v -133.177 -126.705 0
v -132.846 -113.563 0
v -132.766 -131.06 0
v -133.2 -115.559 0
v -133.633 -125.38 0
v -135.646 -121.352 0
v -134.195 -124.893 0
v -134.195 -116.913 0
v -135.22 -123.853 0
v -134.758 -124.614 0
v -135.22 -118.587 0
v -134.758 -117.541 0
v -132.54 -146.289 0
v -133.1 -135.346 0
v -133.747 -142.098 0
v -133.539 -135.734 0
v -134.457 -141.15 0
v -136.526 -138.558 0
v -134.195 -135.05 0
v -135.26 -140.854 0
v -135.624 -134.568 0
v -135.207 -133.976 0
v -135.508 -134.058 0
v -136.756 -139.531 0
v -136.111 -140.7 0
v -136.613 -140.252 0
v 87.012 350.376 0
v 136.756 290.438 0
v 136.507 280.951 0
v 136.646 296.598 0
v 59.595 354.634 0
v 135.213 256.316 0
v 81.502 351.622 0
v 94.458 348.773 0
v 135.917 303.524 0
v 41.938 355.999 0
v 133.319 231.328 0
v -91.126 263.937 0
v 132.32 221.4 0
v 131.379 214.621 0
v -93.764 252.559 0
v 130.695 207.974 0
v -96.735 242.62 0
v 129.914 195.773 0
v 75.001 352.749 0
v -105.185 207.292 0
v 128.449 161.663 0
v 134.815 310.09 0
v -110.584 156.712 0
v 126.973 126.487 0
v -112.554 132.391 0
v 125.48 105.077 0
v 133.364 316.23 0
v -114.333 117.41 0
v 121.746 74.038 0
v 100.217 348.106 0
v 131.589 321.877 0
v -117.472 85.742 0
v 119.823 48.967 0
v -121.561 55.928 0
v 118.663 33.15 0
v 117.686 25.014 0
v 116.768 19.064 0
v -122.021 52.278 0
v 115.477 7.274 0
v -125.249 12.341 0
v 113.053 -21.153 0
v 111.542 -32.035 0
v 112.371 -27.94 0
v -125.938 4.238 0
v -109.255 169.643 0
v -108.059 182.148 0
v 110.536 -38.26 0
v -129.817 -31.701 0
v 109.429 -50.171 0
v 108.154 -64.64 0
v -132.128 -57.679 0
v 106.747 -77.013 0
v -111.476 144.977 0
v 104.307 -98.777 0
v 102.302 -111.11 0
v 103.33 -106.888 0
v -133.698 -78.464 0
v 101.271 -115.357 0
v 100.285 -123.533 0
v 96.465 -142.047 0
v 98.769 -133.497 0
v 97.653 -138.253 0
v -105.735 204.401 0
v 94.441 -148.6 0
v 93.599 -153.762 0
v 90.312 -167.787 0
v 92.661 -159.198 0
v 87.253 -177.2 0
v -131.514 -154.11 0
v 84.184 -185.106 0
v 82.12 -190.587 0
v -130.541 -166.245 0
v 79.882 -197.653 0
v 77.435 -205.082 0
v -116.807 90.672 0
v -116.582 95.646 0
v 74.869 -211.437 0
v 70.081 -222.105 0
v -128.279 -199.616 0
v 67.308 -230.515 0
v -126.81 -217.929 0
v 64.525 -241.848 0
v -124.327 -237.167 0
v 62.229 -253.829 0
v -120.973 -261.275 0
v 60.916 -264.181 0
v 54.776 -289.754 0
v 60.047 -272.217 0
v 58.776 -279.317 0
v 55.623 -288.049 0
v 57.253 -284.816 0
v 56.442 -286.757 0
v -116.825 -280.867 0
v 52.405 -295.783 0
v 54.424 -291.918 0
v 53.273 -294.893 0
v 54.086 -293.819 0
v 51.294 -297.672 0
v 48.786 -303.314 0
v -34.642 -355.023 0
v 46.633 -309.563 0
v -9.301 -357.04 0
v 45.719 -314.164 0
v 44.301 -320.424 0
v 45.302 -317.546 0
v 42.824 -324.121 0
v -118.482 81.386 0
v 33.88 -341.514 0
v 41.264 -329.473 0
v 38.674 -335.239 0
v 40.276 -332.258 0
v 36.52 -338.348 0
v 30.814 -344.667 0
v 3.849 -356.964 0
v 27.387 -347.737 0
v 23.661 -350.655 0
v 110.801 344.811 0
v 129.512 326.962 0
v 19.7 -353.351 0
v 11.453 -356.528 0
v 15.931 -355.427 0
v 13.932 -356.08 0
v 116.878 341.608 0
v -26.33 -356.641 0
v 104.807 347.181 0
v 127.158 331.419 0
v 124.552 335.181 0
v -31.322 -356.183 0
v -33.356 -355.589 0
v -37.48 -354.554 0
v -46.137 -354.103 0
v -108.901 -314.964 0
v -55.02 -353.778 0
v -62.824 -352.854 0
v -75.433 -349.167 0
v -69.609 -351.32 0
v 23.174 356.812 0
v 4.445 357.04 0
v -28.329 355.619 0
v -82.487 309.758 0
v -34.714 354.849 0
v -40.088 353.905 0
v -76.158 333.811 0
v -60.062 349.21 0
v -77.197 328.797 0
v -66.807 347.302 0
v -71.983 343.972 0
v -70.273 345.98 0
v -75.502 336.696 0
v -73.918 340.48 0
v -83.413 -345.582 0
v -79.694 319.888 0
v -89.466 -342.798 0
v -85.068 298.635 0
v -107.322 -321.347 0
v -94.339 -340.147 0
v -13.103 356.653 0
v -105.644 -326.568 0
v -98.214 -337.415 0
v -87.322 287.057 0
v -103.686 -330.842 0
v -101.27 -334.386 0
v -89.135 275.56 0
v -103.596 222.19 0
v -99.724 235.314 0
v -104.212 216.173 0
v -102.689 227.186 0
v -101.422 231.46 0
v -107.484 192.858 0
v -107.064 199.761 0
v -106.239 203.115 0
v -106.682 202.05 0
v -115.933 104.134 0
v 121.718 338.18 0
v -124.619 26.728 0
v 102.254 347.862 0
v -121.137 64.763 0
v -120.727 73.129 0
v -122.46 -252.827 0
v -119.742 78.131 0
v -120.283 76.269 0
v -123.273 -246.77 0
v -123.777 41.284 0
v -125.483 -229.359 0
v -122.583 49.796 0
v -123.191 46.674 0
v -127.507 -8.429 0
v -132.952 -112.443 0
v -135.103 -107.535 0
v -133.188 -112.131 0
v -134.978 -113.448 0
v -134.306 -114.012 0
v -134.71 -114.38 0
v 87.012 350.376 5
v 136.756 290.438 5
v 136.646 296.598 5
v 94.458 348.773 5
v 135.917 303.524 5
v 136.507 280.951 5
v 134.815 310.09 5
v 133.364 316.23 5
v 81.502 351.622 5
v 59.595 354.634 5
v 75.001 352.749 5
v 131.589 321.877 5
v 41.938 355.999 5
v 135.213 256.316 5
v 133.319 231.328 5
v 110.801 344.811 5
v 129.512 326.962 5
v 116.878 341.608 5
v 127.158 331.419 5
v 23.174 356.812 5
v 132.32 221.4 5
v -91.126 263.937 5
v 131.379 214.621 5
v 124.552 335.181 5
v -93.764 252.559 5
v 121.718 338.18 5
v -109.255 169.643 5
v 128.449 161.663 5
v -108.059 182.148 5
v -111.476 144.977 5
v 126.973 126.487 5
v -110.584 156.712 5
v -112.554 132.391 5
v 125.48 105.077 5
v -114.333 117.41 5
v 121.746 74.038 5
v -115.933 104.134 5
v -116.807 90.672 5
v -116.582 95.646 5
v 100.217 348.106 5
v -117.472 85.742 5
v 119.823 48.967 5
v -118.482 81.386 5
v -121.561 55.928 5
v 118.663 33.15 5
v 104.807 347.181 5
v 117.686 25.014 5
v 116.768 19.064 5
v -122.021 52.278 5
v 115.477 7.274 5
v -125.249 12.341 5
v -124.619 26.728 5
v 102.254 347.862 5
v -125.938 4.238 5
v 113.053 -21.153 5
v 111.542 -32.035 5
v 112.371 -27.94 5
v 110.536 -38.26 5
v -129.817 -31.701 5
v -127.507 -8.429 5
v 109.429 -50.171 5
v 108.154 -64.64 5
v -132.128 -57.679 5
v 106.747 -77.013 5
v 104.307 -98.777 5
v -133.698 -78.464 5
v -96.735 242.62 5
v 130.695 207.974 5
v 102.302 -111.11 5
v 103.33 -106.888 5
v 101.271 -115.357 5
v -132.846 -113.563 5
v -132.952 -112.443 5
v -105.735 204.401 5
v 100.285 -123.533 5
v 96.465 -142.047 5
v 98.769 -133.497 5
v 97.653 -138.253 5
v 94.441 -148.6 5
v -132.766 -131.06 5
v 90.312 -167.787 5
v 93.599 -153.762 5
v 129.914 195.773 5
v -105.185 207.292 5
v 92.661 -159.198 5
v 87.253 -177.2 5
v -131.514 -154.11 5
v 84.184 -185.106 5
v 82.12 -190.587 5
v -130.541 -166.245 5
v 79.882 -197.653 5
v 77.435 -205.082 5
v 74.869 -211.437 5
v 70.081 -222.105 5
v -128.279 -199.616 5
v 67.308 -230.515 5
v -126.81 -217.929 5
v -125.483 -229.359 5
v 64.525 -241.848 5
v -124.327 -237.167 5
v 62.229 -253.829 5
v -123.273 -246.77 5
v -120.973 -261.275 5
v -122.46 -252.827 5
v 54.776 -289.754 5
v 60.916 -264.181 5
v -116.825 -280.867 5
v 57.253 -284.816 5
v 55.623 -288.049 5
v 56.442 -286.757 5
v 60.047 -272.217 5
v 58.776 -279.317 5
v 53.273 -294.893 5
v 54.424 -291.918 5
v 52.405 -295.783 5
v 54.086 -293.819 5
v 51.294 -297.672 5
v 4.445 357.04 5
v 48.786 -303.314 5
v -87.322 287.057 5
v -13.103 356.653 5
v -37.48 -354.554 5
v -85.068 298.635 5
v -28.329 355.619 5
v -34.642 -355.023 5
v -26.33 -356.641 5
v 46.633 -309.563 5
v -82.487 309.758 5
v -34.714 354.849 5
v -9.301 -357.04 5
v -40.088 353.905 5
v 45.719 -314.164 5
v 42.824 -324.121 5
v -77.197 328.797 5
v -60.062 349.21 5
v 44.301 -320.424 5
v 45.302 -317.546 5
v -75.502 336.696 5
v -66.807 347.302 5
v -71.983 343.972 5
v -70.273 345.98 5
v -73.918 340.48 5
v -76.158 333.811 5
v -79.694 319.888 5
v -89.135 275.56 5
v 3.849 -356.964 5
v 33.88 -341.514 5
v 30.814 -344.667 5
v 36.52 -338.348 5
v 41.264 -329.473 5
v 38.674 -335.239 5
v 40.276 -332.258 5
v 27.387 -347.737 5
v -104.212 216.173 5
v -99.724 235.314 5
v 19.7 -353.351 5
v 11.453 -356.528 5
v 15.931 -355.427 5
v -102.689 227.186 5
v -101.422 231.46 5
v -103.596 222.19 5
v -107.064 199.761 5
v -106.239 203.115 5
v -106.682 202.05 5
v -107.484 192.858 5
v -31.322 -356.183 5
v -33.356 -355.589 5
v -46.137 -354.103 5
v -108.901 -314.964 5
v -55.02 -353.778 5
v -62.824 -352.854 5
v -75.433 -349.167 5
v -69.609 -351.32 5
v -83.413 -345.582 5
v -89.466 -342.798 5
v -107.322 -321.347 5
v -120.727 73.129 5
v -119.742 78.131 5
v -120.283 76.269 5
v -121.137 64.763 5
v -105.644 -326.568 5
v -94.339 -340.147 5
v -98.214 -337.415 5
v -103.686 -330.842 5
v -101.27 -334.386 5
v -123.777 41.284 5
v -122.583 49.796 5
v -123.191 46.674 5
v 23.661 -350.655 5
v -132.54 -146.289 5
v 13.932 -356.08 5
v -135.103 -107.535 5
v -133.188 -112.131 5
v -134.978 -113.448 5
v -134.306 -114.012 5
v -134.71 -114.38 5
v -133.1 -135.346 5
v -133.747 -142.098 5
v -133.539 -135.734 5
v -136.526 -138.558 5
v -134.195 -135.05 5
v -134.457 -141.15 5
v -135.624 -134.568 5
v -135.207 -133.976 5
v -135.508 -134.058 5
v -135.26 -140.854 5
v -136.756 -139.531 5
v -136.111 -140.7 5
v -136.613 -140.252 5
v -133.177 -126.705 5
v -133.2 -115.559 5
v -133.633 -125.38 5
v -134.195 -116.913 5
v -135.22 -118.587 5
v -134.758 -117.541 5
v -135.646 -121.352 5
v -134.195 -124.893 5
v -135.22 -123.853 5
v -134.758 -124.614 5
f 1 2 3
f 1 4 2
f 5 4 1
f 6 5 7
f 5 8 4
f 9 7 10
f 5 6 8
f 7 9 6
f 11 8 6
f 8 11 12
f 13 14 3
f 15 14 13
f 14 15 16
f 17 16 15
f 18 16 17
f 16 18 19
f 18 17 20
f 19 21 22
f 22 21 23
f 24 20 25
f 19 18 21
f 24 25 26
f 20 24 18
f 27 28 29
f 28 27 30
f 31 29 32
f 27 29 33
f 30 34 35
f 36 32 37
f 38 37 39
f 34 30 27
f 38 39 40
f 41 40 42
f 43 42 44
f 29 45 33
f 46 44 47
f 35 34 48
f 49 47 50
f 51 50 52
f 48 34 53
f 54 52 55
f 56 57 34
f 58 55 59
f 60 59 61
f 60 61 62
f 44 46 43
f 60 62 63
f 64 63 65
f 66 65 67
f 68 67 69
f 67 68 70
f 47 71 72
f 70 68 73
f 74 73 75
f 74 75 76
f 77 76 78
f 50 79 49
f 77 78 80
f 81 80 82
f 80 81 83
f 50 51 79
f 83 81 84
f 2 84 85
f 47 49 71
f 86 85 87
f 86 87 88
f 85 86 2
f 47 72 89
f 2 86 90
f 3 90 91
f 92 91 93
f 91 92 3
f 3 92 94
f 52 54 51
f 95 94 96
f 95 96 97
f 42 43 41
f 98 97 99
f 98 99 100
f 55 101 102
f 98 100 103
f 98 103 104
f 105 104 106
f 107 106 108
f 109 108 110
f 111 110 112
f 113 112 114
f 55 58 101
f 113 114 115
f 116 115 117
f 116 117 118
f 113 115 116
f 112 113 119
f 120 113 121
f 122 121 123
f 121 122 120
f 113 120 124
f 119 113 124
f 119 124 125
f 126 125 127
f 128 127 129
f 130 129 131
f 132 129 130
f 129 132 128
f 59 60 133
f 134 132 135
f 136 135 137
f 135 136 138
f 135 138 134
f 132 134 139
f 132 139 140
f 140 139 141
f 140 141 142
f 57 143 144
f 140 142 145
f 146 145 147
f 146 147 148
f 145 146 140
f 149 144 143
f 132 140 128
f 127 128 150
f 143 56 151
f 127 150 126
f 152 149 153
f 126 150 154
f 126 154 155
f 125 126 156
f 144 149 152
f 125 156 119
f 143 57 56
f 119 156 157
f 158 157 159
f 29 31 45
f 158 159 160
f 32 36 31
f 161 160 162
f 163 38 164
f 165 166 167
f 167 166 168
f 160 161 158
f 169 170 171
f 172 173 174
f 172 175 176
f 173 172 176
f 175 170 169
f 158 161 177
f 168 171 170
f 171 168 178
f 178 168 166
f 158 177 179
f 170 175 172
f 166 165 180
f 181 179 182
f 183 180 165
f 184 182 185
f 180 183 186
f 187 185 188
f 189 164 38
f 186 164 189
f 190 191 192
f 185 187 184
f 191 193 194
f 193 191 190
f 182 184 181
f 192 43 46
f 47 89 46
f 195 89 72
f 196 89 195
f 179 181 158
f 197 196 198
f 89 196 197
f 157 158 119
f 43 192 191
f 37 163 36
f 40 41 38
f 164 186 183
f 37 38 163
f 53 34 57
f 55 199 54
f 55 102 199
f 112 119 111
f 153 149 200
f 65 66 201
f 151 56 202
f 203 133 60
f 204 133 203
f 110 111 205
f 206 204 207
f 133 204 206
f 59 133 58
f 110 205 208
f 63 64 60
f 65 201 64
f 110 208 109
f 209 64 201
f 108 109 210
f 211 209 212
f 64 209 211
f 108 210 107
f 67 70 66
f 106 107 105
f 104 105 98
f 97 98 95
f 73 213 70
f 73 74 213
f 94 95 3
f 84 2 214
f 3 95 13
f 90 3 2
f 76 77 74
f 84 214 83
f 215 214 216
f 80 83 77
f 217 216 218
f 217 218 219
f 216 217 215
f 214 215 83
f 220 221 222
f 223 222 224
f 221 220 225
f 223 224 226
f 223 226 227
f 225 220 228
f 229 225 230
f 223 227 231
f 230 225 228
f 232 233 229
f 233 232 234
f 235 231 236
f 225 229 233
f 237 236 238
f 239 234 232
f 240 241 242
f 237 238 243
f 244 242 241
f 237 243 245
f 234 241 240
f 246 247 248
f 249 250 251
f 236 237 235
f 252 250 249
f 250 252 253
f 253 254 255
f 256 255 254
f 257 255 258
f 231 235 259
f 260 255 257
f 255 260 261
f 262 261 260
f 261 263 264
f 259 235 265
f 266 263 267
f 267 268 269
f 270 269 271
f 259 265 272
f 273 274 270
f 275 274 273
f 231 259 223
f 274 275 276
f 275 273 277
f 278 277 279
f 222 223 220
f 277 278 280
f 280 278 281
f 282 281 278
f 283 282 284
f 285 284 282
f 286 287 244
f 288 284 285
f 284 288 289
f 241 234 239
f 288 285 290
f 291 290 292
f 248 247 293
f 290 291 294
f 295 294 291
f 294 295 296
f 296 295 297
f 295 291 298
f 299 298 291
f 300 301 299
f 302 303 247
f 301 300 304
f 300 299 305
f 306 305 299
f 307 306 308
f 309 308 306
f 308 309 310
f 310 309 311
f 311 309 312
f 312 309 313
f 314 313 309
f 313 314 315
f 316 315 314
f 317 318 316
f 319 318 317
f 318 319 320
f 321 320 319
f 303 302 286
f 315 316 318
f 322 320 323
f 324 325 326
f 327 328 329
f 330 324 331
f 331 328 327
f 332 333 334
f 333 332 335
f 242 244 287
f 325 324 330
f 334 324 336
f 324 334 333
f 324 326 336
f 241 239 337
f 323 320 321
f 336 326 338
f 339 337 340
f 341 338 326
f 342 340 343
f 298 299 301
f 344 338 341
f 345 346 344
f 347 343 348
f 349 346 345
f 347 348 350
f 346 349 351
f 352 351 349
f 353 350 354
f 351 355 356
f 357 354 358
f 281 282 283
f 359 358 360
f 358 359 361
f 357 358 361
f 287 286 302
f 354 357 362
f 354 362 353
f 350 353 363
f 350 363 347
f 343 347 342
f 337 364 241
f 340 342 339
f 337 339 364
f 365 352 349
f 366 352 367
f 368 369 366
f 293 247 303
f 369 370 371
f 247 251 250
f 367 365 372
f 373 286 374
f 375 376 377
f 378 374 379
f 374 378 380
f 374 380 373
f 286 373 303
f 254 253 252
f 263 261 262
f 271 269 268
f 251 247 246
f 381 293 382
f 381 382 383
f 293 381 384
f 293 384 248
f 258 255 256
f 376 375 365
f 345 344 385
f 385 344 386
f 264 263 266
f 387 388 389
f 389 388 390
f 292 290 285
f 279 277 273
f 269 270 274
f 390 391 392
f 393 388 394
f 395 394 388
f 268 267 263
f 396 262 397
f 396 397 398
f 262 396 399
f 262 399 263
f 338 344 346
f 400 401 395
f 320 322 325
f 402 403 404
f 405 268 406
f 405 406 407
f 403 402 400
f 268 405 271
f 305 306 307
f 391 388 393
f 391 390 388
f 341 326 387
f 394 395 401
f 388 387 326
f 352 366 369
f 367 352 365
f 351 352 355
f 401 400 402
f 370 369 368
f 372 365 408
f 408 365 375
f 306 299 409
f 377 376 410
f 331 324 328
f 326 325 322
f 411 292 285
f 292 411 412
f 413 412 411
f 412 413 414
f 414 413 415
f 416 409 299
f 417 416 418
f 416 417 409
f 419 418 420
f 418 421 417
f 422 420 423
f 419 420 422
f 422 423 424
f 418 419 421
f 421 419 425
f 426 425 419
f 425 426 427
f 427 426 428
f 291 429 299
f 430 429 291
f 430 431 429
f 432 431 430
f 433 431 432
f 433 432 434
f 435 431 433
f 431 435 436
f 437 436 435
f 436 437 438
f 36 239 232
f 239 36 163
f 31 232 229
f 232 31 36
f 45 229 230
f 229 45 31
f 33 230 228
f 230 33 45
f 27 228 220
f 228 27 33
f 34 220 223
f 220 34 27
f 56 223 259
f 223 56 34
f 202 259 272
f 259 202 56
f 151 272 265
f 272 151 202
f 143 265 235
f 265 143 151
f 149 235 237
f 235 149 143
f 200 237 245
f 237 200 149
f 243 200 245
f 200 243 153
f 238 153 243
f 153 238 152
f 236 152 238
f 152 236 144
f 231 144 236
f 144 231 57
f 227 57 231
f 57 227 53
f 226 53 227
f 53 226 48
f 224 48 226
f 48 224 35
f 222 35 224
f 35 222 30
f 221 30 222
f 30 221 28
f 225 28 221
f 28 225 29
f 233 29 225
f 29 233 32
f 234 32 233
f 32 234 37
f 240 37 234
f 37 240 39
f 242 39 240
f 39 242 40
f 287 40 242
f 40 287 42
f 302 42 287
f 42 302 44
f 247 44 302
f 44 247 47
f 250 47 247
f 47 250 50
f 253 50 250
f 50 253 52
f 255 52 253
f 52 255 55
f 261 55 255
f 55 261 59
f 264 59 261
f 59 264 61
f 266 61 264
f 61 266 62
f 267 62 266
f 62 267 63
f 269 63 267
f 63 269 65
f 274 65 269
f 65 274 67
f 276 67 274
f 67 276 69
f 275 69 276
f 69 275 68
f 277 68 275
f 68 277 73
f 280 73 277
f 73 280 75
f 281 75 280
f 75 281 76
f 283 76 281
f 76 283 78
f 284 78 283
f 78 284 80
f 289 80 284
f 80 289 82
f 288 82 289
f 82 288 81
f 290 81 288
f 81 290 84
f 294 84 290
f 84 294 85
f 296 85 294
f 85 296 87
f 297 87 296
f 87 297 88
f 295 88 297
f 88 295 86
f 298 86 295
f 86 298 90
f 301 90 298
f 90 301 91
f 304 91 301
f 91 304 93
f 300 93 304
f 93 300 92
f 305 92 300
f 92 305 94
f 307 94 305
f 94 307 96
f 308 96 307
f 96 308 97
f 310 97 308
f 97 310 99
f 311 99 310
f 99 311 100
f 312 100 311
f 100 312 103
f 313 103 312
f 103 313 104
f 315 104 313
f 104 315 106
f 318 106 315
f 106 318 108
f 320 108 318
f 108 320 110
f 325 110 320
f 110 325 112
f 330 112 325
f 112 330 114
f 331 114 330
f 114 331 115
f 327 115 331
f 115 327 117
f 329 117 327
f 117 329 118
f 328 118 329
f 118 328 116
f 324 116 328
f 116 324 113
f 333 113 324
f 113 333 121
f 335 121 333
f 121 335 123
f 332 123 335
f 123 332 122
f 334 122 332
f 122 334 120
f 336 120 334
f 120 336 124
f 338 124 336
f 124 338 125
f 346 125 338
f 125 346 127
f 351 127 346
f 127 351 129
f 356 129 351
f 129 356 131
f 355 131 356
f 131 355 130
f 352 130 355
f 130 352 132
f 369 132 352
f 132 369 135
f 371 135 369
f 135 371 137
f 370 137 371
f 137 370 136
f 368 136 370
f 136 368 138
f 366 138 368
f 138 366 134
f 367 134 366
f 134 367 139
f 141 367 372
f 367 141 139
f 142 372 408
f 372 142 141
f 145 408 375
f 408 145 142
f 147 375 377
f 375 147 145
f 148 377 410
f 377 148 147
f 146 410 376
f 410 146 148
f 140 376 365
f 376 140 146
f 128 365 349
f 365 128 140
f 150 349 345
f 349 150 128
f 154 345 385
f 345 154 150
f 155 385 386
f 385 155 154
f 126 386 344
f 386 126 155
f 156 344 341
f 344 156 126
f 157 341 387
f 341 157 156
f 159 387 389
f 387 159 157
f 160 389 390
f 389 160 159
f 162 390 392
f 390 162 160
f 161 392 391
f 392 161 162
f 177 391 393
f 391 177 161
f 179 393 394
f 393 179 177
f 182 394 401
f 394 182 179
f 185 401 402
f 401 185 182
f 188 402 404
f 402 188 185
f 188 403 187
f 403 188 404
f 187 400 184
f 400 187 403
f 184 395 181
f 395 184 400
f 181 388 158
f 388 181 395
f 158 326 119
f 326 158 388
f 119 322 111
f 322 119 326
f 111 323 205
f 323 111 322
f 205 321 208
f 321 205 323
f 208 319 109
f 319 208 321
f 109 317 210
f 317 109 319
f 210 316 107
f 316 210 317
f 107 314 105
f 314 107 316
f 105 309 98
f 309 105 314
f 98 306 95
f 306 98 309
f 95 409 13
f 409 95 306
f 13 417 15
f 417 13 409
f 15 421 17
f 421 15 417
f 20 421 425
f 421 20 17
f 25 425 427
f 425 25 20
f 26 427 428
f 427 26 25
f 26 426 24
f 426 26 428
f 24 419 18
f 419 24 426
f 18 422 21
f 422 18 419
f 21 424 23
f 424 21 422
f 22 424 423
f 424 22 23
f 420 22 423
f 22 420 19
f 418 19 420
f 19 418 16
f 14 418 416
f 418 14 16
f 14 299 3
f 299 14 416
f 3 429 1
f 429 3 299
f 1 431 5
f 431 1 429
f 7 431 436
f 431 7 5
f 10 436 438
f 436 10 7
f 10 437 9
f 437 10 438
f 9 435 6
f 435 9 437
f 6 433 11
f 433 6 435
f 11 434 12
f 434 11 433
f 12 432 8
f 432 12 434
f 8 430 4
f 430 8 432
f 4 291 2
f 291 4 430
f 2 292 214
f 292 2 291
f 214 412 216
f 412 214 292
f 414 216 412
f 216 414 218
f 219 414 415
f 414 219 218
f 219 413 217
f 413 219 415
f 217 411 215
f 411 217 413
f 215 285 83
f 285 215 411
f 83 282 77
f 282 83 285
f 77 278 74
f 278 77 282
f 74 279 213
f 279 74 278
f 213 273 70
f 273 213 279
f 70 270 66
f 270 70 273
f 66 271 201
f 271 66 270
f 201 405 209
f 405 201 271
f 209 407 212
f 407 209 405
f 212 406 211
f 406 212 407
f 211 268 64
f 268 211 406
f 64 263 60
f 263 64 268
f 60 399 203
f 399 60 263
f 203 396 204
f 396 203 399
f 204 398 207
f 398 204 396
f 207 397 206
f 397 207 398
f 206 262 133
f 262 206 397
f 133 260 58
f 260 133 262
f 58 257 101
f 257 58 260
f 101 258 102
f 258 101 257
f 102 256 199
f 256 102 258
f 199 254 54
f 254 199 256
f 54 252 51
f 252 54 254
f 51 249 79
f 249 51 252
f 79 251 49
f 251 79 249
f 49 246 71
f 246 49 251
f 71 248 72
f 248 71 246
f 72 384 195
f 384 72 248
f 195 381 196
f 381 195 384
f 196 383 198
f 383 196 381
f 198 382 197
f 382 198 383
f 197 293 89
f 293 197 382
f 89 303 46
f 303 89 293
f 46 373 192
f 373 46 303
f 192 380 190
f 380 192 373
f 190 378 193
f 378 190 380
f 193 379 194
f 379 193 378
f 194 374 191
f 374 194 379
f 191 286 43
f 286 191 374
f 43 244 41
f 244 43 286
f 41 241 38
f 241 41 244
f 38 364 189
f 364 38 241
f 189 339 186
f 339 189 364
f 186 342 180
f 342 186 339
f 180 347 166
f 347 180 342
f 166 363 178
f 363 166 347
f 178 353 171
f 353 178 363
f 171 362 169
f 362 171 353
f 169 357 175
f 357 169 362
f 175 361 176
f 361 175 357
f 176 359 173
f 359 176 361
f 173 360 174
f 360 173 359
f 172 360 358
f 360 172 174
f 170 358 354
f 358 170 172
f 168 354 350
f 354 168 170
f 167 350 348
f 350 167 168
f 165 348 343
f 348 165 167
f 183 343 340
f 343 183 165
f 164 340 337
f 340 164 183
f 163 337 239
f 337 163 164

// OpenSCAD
// Generated by inkscape None + inkscape-paths2openscad 0.27
// Sun Oct 29 21:39:29 2023 from "halloween.tiff.svg"

// Module names are of the form poly_<inkscape-path-id>().  As a result,
// you can associate a polygon in this OpenSCAD program with the corresponding
// SVG element in the Inkscape document by looking for the XML element with
// the attribute id="inkscape-path-id".

// fudge value is used to ensure that subtracted solids are a tad taller
// in the z dimension than the polygon being subtracted from.  This helps
// keep the resulting .stl file manifold.
fudge = 0.1;
user_unit_scale_x = 1.0;
user_unit_scale_y = 1.0;
custom_scale_x = 1;
custom_scale_y = 1;
zsize = 5;
line_fn = 4;
min_line_width = 1.0;
line_width_scale = 1.0;
function min_line_mm(w) = max(min_line_width, w * line_width_scale) * 1;


path1677_0_center = [0.000000,0.000000];
path1677_0_points = [[-33.356062,355.589336],[-34.642000,355.023172],[-37.480427,354.554198],[-46.137222,354.102936],[-55.020220,353.778095],[-62.824275,352.853836],[-69.608666,351.320051],[-75.432672,349.166636],[-83.412722,345.582436],[-89.465500,342.797645],[-94.339240,340.147407],[-98.213927,337.415509],[-101.269547,334.385736],[-103.686084,330.841875],[-105.643523,326.567714],[-107.321851,321.347038],[-108.901052,314.963636],[-116.824602,280.867036],[-120.973207,261.275111],[-122.459918,252.827479],[-123.272792,246.770436],[-124.327369,237.167186],[-125.482642,229.359436],[-126.810274,217.928948],[-128.279222,199.615636],[-130.540852,166.244536],[-131.514253,154.109523],[-132.540477,146.288886],[-133.746708,142.098323],[-134.457072,141.150476],[-135.260132,140.853536],[-136.111003,140.699620],[-136.613382,140.251836],[-136.755715,139.531126],[-136.526452,138.558436],[-135.623542,134.568436],[-135.508383,134.057782],[-135.206994,133.976186],[-134.194842,135.049836],[-133.539351,135.733831],[-133.100332,135.345973],[-132.766142,131.059836],[-133.176663,126.704786],[-133.633231,125.379992],[-134.194842,124.893436],[-134.758203,124.613968],[-135.219547,123.853048],[-135.645752,121.351736],[-135.219547,118.587023],[-134.758203,117.540981],[-134.194842,116.913336],[-133.200084,115.559311],[-132.845902,113.563136],[-132.952061,112.443272],[-133.187630,112.131448],[-134.306442,114.011536],[-134.709870,114.380043],[-134.977571,113.448301],[-135.103237,107.534886],[-133.697732,78.464036],[-132.127851,57.679369],[-129.817050,31.701023],[-127.506563,8.428606],[-125.937622,-4.238274],[-125.249364,-12.340741],[-124.618632,-26.727494],[-123.777305,-41.284401],[-123.190769,-46.674314],[-122.582722,-49.795954],[-122.021211,-52.278371],[-121.561384,-55.927799],[-121.136582,-64.763244],[-120.726794,-73.128727],[-120.283221,-76.269432],[-119.741562,-78.130624],[-118.481782,-81.385500],[-117.471698,-85.742099],[-116.806660,-90.671826],[-116.582022,-95.646084],[-115.933322,-104.133953],[-114.333292,-117.409844],[-112.554339,-132.390572],[-111.475542,-144.977284],[-110.584053,-156.711577],[-109.255442,-169.642884],[-108.058689,-182.147978],[-107.484212,-192.857564],[-107.064388,-199.761024],[-106.682119,-202.050069],[-106.239422,-203.115214],[-105.735013,-204.401356],[-105.184710,-207.292098],[-104.212462,-216.173484],[-103.595909,-222.190394],[-102.689277,-227.185813],[-101.422104,-231.460211],[-99.723932,-235.314054],[-96.734952,-242.620241],[-93.764340,-252.559194],[-91.126225,-263.937030],[-89.134732,-275.559864],[-87.322125,-287.056825],[-85.068202,-298.635176],[-82.487346,-309.757835],[-79.693942,-319.887724],[-77.196778,-328.796677],[-76.158132,-333.811254],[-75.502072,-336.695799],[-73.918183,-340.479972],[-71.982898,-343.971956],[-70.272652,-345.979934],[-66.807367,-347.301903],[-60.062317,-349.210278],[-40.088212,-353.905274],[-34.713501,-354.848930],[-28.329167,-355.618828],[-13.103412,-356.653230],[4.445482,-357.040236],[23.173950,-356.811602],[41.938421,-355.999085],[59.595329,-354.634440],[75.001104,-352.749425],[81.502452,-351.621702],[87.012178,-350.375794],[94.458266,-348.772571],[100.217078,-348.105744],[102.253957,-347.861739],[104.806930,-347.180534],[110.800791,-344.811382],[116.877921,-341.608009],[121.717578,-338.180134],[124.552139,-335.180878],[127.158235,-331.419073],[129.511740,-326.961925],[131.588528,-321.876637],[133.364473,-316.230414],[134.815447,-310.090459],[135.917324,-303.523978],[136.645978,-296.598174],[136.755715,-290.437516],[136.507303,-280.950745],[135.213403,-256.315979],[133.319016,-231.328099],[132.319995,-221.399934],[131.378878,-214.621324],[130.694627,-207.973745],[129.914216,-195.773003],[128.449478,-161.662834],[126.973028,-126.487148],[125.480378,-105.077044],[121.746091,-74.037921],[119.823278,-48.967394],[118.663066,-33.150003],[117.686378,-25.014194],[116.767694,-19.063599],[115.477403,-7.273839],[113.053478,21.152786],[112.370653,27.940358],[111.541878,32.034666],[110.536341,38.259977],[109.428578,50.171136],[108.154028,64.639511],[106.747478,77.013136],[104.306778,98.776836],[103.330141,106.888398],[102.302278,111.109636],[101.270516,115.357361],[100.284578,123.532536],[98.769428,133.497186],[97.653316,138.252823],[96.465278,142.047336],[94.441116,148.599961],[93.599178,153.762236],[92.660741,159.197911],[90.312078,167.787411],[87.253166,177.200373],[84.183978,185.106436],[82.120303,190.587486],[79.882178,197.652836],[77.435053,205.081611],[74.868678,211.436536],[70.081178,222.104836],[67.307527,230.515122],[64.524951,241.848448],[62.229151,253.829118],[60.915828,264.181436],[60.046583,272.217501],[58.776435,279.317286],[57.252796,284.816045],[56.441984,286.757308],[55.623078,288.049036],[54.776545,289.754173],[54.424448,291.918236],[54.086147,293.819348],[53.272788,294.892536],[52.404941,295.783366],[51.294229,297.671859],[48.786293,303.313998],[46.633145,309.563281],[45.718948,314.164036],[45.302537,317.546023],[44.301388,320.424236],[42.824507,324.121498],[41.264338,329.472736],[40.275823,332.257638],[38.673479,335.239300],[36.520360,338.347901],[33.879517,341.513623],[30.814001,344.666647],[27.386863,347.737153],[23.661155,350.655322],[19.699928,353.351336],[15.930673,355.426690],[13.931574,356.079948],[11.453067,356.528198],[3.848545,356.963500],[-9.301462,357.040236],[-26.329874,356.640736],[-31.321860,356.182732],[-33.356062,355.589336],[-33.356062,355.589336]];
module poly_path1677(h, w, s, res=line_fn)
{
  scale([custom_scale_x, -custom_scale_y, 1]) union()
  {
    translate (path1677_0_center) linear_extrude(height=h, convexity=10, scale=0.01*s)
      translate (-path1677_0_center) polygon(path1677_0_points);
  }
}

module halloween(h)
{
  difference()
  {
    union()
    {
      translate ([0,0,0]) poly_path1677(h, min_line_mm(1.45092), 100.0);
    }
    union()
    {
    }
  }
}

halloween(zsize);
